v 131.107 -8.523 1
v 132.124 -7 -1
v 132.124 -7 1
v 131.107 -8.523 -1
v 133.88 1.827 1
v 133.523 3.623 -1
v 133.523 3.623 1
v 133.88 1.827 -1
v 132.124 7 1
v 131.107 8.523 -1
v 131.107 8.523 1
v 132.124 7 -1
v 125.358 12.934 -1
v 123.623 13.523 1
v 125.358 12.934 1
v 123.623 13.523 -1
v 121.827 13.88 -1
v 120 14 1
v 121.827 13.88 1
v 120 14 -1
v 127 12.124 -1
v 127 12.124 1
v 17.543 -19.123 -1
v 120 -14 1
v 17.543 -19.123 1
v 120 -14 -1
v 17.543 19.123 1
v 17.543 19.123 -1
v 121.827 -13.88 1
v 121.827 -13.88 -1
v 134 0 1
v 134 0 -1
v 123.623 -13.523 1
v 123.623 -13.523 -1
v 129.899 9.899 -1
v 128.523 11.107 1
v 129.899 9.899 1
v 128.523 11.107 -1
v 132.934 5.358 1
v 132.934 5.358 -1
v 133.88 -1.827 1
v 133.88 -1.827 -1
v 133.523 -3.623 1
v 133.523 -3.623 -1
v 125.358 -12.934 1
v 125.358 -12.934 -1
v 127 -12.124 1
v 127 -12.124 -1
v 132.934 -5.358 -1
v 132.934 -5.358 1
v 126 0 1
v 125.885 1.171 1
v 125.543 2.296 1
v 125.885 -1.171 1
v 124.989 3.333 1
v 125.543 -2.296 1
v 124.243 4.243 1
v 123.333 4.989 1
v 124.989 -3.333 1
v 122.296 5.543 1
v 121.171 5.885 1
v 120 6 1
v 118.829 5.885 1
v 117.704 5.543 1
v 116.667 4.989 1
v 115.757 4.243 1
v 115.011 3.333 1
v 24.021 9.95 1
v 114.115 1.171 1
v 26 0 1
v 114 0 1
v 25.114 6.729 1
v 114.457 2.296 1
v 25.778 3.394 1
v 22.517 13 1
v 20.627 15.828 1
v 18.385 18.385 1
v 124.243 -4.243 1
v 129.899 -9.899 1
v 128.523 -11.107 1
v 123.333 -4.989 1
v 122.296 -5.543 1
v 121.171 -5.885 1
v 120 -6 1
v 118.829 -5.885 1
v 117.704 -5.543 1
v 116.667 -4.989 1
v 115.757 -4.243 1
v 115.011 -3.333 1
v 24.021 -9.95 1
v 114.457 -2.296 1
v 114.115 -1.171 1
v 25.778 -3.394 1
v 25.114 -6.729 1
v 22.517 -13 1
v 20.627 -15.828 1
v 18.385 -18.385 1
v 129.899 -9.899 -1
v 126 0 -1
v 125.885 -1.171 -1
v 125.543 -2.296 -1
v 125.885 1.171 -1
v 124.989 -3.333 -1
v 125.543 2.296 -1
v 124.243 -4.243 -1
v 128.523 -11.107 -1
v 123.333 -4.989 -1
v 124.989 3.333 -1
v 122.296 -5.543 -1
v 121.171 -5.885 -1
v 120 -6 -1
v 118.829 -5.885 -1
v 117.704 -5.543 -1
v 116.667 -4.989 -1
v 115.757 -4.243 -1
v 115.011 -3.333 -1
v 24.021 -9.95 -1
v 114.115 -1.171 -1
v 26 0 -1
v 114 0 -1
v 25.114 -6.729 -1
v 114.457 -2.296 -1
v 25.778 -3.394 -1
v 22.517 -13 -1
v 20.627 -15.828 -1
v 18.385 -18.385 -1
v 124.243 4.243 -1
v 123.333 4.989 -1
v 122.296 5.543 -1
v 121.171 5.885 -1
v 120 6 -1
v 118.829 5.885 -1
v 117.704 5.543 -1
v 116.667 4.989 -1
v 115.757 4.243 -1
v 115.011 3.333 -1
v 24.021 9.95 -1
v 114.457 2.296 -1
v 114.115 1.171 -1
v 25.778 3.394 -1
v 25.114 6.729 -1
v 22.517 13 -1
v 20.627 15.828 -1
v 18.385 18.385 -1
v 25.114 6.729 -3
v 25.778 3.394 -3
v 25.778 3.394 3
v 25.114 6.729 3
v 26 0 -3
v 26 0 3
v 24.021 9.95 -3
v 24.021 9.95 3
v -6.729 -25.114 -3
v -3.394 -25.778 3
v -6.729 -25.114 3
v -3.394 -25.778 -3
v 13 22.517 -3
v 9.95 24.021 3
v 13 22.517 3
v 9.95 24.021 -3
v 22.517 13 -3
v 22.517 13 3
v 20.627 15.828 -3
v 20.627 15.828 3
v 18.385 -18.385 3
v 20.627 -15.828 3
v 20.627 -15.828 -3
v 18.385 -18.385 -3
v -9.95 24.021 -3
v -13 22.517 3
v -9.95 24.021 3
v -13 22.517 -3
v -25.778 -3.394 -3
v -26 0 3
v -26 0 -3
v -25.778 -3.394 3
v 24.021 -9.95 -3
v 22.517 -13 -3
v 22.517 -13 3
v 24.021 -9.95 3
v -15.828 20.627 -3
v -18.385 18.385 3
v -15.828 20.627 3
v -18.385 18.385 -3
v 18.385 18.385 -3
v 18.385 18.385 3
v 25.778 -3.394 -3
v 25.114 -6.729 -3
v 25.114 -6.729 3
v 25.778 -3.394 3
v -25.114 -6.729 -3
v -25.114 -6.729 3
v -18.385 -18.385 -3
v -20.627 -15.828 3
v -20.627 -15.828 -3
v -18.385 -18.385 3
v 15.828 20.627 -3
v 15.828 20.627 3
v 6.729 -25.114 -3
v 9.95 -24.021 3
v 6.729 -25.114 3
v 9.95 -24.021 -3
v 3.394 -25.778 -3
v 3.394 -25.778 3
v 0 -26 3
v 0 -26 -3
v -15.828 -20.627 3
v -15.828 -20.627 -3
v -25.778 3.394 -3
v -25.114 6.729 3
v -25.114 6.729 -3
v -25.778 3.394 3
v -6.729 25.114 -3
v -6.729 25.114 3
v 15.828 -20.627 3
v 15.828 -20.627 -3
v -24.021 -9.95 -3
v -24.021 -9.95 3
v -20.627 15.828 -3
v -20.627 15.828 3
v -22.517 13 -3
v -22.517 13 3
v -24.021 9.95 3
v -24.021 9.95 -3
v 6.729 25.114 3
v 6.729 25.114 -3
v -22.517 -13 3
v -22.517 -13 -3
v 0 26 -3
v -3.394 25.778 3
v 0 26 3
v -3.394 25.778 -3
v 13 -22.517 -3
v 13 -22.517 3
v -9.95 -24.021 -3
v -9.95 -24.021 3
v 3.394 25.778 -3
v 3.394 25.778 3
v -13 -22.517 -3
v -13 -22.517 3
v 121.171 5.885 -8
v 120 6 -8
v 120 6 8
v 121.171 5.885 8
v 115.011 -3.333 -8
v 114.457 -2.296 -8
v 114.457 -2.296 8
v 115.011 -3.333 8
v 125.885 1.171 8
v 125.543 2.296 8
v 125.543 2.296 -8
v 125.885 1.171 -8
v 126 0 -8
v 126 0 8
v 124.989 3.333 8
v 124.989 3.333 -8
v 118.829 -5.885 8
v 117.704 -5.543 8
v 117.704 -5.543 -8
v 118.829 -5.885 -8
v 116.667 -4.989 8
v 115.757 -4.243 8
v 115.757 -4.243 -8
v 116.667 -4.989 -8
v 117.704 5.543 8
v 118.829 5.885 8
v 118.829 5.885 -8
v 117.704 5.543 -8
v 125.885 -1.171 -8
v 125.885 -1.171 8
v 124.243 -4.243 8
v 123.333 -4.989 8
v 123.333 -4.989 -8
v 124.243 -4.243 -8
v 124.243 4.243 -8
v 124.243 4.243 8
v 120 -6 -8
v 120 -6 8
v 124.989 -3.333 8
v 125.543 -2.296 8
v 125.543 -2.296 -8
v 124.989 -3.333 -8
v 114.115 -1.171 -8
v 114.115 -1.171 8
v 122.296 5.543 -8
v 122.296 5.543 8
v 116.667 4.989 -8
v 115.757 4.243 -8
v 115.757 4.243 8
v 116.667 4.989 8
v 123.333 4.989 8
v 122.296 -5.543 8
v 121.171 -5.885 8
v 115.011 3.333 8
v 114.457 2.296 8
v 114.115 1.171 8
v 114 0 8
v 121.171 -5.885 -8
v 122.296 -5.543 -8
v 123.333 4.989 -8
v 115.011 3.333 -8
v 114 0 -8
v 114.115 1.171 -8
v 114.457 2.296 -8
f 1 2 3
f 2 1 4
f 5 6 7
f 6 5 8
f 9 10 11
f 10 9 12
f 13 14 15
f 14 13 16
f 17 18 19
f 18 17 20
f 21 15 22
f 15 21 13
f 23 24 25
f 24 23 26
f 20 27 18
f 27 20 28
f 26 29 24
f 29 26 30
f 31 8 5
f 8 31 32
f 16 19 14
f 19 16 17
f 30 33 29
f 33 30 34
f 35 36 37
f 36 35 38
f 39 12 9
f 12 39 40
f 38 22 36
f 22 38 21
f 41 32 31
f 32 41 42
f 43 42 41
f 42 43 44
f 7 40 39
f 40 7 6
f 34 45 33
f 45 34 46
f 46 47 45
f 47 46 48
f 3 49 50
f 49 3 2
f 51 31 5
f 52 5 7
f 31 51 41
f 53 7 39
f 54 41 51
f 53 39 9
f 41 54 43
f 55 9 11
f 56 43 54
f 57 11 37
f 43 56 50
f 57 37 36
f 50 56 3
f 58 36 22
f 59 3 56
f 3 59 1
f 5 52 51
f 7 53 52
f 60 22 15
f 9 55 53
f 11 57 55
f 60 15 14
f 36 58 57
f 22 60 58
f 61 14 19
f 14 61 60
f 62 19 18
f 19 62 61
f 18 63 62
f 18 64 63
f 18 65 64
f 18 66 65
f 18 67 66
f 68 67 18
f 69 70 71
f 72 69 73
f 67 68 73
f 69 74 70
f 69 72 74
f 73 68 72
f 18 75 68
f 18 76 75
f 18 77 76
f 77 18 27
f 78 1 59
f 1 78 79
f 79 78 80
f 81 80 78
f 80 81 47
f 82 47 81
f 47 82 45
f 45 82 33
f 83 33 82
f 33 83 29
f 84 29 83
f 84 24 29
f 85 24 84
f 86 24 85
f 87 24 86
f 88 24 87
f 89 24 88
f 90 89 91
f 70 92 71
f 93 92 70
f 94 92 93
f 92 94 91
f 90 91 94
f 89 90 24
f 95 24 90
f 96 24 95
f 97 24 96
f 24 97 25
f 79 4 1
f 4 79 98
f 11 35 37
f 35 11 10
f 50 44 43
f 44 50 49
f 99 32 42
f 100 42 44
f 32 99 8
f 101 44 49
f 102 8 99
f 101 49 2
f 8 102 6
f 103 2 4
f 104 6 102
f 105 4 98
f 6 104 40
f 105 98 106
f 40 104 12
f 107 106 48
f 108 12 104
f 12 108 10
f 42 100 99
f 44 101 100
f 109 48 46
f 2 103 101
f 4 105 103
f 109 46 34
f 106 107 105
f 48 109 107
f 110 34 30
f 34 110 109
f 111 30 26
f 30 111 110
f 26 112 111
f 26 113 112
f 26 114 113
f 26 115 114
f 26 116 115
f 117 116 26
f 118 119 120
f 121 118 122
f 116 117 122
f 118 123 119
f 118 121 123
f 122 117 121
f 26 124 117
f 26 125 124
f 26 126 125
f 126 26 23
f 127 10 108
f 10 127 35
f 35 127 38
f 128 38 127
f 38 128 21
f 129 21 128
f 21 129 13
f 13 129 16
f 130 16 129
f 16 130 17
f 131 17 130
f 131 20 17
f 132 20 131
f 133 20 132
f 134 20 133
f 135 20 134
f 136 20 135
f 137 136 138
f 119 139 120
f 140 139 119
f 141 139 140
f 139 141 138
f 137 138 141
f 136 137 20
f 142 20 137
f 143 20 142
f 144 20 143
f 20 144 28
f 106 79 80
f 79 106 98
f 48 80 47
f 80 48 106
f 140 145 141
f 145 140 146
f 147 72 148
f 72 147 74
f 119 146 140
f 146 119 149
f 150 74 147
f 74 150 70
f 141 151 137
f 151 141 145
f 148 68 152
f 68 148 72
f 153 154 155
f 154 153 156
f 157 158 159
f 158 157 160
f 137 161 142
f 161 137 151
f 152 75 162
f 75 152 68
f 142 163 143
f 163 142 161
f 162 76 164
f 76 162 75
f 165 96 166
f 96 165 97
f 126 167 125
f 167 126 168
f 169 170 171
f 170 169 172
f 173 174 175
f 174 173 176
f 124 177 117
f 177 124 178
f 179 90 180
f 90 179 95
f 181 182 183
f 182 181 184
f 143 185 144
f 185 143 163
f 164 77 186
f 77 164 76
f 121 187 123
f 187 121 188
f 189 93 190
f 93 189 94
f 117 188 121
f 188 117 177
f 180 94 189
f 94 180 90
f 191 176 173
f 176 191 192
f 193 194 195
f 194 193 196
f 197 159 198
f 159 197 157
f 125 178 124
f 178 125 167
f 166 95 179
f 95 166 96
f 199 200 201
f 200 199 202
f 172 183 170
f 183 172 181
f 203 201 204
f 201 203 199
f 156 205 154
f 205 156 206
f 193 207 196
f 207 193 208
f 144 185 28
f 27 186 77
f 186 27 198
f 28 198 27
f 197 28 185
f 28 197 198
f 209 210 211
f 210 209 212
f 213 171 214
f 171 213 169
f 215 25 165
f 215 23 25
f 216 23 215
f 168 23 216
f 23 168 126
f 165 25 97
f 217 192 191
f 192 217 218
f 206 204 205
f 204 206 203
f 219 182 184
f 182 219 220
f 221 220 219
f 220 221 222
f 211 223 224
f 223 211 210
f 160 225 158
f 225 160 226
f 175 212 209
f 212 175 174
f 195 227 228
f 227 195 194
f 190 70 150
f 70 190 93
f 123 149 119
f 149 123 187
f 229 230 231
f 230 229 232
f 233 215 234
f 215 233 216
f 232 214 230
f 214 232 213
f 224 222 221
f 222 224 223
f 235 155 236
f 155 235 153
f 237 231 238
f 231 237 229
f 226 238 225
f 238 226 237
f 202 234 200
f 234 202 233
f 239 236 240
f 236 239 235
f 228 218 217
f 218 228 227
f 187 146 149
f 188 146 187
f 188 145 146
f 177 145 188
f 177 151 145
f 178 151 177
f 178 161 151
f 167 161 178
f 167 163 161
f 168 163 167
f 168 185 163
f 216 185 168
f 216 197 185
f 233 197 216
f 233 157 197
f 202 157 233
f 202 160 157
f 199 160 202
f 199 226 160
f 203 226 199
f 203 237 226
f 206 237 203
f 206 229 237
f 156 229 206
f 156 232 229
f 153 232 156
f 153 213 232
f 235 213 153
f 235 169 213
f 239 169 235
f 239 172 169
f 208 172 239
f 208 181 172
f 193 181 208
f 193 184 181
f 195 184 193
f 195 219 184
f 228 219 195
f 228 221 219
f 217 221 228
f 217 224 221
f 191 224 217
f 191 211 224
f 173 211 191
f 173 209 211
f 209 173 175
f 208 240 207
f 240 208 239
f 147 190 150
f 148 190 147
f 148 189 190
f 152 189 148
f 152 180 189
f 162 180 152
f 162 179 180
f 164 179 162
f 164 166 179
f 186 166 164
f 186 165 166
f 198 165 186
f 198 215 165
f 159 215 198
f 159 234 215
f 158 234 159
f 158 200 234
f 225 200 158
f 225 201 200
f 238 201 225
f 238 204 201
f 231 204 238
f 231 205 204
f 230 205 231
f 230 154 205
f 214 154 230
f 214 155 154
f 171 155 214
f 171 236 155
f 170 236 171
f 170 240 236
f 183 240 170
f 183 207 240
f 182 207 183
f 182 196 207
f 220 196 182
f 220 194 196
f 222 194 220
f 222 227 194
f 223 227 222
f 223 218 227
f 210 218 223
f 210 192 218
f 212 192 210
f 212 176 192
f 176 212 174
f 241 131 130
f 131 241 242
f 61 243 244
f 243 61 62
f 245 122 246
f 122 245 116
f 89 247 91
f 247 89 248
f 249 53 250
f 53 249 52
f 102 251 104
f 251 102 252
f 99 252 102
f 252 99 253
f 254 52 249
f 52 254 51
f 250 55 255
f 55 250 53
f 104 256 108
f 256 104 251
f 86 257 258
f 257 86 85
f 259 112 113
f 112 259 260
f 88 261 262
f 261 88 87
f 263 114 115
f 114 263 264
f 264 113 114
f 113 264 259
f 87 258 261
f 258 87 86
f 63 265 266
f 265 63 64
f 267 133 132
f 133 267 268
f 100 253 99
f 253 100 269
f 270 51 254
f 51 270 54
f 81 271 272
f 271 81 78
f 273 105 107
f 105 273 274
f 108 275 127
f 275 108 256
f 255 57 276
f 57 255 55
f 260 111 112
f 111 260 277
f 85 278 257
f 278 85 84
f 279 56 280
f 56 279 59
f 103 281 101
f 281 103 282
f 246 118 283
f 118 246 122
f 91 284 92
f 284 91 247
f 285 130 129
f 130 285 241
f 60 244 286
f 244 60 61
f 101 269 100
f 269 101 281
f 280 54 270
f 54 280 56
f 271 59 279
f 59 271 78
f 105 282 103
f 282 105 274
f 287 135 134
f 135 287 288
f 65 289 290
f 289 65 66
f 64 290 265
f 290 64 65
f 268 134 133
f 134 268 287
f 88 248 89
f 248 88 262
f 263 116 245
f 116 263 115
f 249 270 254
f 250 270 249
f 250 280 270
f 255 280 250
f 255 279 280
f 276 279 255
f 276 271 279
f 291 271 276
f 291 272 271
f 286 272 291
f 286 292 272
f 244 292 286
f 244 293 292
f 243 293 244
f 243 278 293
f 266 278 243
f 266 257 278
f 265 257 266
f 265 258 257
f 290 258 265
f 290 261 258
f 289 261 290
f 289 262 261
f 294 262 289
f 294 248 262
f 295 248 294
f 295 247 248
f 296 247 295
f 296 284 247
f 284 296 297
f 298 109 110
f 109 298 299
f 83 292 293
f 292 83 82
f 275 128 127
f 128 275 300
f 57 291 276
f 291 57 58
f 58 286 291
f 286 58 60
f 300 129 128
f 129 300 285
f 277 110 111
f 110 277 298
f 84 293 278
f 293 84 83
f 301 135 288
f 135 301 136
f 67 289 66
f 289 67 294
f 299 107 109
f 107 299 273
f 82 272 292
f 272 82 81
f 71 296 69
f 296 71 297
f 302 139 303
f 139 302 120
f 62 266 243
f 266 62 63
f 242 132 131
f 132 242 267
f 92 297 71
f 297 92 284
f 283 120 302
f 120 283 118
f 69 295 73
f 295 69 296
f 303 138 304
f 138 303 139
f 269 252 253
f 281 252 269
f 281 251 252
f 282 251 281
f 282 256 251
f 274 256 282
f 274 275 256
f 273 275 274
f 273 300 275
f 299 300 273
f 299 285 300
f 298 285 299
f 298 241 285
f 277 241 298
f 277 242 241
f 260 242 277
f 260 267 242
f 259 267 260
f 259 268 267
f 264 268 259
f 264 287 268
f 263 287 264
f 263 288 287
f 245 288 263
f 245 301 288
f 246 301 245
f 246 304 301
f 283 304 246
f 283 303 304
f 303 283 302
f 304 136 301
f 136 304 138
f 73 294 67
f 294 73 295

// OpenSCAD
// ISM-FJ-TOOL-080 — Inlet duct layup mandrel (male, study mm). Issue #106 / 4b.
// Side/under intake duct study form; not LO recipe — packaging mandrel only.

duct_l = 120;
throat_d = 28;
lip_d = 40;
wall_pad = 6;

module intake_layup_mandrel() {
    union() {
        // tapered duct body
        hull() {
            translate([0, 0, 0])
                cylinder(h = 2, d = lip_d, center = true, $fn = 48);
            translate([duct_l, 0, 0])
                cylinder(h = 2, d = throat_d, center = true, $fn = 48);
        }
        // lip flange
        translate([0, 0, 0])
            cylinder(h = wall_pad, d = lip_d + 12, center = true, $fn = 48);
        // handle / vacuum boss at throat end
        translate([duct_l, 0, 0])
            cylinder(h = 16, d = 12, center = true, $fn = 32);
    }
}

intake_layup_mandrel();
